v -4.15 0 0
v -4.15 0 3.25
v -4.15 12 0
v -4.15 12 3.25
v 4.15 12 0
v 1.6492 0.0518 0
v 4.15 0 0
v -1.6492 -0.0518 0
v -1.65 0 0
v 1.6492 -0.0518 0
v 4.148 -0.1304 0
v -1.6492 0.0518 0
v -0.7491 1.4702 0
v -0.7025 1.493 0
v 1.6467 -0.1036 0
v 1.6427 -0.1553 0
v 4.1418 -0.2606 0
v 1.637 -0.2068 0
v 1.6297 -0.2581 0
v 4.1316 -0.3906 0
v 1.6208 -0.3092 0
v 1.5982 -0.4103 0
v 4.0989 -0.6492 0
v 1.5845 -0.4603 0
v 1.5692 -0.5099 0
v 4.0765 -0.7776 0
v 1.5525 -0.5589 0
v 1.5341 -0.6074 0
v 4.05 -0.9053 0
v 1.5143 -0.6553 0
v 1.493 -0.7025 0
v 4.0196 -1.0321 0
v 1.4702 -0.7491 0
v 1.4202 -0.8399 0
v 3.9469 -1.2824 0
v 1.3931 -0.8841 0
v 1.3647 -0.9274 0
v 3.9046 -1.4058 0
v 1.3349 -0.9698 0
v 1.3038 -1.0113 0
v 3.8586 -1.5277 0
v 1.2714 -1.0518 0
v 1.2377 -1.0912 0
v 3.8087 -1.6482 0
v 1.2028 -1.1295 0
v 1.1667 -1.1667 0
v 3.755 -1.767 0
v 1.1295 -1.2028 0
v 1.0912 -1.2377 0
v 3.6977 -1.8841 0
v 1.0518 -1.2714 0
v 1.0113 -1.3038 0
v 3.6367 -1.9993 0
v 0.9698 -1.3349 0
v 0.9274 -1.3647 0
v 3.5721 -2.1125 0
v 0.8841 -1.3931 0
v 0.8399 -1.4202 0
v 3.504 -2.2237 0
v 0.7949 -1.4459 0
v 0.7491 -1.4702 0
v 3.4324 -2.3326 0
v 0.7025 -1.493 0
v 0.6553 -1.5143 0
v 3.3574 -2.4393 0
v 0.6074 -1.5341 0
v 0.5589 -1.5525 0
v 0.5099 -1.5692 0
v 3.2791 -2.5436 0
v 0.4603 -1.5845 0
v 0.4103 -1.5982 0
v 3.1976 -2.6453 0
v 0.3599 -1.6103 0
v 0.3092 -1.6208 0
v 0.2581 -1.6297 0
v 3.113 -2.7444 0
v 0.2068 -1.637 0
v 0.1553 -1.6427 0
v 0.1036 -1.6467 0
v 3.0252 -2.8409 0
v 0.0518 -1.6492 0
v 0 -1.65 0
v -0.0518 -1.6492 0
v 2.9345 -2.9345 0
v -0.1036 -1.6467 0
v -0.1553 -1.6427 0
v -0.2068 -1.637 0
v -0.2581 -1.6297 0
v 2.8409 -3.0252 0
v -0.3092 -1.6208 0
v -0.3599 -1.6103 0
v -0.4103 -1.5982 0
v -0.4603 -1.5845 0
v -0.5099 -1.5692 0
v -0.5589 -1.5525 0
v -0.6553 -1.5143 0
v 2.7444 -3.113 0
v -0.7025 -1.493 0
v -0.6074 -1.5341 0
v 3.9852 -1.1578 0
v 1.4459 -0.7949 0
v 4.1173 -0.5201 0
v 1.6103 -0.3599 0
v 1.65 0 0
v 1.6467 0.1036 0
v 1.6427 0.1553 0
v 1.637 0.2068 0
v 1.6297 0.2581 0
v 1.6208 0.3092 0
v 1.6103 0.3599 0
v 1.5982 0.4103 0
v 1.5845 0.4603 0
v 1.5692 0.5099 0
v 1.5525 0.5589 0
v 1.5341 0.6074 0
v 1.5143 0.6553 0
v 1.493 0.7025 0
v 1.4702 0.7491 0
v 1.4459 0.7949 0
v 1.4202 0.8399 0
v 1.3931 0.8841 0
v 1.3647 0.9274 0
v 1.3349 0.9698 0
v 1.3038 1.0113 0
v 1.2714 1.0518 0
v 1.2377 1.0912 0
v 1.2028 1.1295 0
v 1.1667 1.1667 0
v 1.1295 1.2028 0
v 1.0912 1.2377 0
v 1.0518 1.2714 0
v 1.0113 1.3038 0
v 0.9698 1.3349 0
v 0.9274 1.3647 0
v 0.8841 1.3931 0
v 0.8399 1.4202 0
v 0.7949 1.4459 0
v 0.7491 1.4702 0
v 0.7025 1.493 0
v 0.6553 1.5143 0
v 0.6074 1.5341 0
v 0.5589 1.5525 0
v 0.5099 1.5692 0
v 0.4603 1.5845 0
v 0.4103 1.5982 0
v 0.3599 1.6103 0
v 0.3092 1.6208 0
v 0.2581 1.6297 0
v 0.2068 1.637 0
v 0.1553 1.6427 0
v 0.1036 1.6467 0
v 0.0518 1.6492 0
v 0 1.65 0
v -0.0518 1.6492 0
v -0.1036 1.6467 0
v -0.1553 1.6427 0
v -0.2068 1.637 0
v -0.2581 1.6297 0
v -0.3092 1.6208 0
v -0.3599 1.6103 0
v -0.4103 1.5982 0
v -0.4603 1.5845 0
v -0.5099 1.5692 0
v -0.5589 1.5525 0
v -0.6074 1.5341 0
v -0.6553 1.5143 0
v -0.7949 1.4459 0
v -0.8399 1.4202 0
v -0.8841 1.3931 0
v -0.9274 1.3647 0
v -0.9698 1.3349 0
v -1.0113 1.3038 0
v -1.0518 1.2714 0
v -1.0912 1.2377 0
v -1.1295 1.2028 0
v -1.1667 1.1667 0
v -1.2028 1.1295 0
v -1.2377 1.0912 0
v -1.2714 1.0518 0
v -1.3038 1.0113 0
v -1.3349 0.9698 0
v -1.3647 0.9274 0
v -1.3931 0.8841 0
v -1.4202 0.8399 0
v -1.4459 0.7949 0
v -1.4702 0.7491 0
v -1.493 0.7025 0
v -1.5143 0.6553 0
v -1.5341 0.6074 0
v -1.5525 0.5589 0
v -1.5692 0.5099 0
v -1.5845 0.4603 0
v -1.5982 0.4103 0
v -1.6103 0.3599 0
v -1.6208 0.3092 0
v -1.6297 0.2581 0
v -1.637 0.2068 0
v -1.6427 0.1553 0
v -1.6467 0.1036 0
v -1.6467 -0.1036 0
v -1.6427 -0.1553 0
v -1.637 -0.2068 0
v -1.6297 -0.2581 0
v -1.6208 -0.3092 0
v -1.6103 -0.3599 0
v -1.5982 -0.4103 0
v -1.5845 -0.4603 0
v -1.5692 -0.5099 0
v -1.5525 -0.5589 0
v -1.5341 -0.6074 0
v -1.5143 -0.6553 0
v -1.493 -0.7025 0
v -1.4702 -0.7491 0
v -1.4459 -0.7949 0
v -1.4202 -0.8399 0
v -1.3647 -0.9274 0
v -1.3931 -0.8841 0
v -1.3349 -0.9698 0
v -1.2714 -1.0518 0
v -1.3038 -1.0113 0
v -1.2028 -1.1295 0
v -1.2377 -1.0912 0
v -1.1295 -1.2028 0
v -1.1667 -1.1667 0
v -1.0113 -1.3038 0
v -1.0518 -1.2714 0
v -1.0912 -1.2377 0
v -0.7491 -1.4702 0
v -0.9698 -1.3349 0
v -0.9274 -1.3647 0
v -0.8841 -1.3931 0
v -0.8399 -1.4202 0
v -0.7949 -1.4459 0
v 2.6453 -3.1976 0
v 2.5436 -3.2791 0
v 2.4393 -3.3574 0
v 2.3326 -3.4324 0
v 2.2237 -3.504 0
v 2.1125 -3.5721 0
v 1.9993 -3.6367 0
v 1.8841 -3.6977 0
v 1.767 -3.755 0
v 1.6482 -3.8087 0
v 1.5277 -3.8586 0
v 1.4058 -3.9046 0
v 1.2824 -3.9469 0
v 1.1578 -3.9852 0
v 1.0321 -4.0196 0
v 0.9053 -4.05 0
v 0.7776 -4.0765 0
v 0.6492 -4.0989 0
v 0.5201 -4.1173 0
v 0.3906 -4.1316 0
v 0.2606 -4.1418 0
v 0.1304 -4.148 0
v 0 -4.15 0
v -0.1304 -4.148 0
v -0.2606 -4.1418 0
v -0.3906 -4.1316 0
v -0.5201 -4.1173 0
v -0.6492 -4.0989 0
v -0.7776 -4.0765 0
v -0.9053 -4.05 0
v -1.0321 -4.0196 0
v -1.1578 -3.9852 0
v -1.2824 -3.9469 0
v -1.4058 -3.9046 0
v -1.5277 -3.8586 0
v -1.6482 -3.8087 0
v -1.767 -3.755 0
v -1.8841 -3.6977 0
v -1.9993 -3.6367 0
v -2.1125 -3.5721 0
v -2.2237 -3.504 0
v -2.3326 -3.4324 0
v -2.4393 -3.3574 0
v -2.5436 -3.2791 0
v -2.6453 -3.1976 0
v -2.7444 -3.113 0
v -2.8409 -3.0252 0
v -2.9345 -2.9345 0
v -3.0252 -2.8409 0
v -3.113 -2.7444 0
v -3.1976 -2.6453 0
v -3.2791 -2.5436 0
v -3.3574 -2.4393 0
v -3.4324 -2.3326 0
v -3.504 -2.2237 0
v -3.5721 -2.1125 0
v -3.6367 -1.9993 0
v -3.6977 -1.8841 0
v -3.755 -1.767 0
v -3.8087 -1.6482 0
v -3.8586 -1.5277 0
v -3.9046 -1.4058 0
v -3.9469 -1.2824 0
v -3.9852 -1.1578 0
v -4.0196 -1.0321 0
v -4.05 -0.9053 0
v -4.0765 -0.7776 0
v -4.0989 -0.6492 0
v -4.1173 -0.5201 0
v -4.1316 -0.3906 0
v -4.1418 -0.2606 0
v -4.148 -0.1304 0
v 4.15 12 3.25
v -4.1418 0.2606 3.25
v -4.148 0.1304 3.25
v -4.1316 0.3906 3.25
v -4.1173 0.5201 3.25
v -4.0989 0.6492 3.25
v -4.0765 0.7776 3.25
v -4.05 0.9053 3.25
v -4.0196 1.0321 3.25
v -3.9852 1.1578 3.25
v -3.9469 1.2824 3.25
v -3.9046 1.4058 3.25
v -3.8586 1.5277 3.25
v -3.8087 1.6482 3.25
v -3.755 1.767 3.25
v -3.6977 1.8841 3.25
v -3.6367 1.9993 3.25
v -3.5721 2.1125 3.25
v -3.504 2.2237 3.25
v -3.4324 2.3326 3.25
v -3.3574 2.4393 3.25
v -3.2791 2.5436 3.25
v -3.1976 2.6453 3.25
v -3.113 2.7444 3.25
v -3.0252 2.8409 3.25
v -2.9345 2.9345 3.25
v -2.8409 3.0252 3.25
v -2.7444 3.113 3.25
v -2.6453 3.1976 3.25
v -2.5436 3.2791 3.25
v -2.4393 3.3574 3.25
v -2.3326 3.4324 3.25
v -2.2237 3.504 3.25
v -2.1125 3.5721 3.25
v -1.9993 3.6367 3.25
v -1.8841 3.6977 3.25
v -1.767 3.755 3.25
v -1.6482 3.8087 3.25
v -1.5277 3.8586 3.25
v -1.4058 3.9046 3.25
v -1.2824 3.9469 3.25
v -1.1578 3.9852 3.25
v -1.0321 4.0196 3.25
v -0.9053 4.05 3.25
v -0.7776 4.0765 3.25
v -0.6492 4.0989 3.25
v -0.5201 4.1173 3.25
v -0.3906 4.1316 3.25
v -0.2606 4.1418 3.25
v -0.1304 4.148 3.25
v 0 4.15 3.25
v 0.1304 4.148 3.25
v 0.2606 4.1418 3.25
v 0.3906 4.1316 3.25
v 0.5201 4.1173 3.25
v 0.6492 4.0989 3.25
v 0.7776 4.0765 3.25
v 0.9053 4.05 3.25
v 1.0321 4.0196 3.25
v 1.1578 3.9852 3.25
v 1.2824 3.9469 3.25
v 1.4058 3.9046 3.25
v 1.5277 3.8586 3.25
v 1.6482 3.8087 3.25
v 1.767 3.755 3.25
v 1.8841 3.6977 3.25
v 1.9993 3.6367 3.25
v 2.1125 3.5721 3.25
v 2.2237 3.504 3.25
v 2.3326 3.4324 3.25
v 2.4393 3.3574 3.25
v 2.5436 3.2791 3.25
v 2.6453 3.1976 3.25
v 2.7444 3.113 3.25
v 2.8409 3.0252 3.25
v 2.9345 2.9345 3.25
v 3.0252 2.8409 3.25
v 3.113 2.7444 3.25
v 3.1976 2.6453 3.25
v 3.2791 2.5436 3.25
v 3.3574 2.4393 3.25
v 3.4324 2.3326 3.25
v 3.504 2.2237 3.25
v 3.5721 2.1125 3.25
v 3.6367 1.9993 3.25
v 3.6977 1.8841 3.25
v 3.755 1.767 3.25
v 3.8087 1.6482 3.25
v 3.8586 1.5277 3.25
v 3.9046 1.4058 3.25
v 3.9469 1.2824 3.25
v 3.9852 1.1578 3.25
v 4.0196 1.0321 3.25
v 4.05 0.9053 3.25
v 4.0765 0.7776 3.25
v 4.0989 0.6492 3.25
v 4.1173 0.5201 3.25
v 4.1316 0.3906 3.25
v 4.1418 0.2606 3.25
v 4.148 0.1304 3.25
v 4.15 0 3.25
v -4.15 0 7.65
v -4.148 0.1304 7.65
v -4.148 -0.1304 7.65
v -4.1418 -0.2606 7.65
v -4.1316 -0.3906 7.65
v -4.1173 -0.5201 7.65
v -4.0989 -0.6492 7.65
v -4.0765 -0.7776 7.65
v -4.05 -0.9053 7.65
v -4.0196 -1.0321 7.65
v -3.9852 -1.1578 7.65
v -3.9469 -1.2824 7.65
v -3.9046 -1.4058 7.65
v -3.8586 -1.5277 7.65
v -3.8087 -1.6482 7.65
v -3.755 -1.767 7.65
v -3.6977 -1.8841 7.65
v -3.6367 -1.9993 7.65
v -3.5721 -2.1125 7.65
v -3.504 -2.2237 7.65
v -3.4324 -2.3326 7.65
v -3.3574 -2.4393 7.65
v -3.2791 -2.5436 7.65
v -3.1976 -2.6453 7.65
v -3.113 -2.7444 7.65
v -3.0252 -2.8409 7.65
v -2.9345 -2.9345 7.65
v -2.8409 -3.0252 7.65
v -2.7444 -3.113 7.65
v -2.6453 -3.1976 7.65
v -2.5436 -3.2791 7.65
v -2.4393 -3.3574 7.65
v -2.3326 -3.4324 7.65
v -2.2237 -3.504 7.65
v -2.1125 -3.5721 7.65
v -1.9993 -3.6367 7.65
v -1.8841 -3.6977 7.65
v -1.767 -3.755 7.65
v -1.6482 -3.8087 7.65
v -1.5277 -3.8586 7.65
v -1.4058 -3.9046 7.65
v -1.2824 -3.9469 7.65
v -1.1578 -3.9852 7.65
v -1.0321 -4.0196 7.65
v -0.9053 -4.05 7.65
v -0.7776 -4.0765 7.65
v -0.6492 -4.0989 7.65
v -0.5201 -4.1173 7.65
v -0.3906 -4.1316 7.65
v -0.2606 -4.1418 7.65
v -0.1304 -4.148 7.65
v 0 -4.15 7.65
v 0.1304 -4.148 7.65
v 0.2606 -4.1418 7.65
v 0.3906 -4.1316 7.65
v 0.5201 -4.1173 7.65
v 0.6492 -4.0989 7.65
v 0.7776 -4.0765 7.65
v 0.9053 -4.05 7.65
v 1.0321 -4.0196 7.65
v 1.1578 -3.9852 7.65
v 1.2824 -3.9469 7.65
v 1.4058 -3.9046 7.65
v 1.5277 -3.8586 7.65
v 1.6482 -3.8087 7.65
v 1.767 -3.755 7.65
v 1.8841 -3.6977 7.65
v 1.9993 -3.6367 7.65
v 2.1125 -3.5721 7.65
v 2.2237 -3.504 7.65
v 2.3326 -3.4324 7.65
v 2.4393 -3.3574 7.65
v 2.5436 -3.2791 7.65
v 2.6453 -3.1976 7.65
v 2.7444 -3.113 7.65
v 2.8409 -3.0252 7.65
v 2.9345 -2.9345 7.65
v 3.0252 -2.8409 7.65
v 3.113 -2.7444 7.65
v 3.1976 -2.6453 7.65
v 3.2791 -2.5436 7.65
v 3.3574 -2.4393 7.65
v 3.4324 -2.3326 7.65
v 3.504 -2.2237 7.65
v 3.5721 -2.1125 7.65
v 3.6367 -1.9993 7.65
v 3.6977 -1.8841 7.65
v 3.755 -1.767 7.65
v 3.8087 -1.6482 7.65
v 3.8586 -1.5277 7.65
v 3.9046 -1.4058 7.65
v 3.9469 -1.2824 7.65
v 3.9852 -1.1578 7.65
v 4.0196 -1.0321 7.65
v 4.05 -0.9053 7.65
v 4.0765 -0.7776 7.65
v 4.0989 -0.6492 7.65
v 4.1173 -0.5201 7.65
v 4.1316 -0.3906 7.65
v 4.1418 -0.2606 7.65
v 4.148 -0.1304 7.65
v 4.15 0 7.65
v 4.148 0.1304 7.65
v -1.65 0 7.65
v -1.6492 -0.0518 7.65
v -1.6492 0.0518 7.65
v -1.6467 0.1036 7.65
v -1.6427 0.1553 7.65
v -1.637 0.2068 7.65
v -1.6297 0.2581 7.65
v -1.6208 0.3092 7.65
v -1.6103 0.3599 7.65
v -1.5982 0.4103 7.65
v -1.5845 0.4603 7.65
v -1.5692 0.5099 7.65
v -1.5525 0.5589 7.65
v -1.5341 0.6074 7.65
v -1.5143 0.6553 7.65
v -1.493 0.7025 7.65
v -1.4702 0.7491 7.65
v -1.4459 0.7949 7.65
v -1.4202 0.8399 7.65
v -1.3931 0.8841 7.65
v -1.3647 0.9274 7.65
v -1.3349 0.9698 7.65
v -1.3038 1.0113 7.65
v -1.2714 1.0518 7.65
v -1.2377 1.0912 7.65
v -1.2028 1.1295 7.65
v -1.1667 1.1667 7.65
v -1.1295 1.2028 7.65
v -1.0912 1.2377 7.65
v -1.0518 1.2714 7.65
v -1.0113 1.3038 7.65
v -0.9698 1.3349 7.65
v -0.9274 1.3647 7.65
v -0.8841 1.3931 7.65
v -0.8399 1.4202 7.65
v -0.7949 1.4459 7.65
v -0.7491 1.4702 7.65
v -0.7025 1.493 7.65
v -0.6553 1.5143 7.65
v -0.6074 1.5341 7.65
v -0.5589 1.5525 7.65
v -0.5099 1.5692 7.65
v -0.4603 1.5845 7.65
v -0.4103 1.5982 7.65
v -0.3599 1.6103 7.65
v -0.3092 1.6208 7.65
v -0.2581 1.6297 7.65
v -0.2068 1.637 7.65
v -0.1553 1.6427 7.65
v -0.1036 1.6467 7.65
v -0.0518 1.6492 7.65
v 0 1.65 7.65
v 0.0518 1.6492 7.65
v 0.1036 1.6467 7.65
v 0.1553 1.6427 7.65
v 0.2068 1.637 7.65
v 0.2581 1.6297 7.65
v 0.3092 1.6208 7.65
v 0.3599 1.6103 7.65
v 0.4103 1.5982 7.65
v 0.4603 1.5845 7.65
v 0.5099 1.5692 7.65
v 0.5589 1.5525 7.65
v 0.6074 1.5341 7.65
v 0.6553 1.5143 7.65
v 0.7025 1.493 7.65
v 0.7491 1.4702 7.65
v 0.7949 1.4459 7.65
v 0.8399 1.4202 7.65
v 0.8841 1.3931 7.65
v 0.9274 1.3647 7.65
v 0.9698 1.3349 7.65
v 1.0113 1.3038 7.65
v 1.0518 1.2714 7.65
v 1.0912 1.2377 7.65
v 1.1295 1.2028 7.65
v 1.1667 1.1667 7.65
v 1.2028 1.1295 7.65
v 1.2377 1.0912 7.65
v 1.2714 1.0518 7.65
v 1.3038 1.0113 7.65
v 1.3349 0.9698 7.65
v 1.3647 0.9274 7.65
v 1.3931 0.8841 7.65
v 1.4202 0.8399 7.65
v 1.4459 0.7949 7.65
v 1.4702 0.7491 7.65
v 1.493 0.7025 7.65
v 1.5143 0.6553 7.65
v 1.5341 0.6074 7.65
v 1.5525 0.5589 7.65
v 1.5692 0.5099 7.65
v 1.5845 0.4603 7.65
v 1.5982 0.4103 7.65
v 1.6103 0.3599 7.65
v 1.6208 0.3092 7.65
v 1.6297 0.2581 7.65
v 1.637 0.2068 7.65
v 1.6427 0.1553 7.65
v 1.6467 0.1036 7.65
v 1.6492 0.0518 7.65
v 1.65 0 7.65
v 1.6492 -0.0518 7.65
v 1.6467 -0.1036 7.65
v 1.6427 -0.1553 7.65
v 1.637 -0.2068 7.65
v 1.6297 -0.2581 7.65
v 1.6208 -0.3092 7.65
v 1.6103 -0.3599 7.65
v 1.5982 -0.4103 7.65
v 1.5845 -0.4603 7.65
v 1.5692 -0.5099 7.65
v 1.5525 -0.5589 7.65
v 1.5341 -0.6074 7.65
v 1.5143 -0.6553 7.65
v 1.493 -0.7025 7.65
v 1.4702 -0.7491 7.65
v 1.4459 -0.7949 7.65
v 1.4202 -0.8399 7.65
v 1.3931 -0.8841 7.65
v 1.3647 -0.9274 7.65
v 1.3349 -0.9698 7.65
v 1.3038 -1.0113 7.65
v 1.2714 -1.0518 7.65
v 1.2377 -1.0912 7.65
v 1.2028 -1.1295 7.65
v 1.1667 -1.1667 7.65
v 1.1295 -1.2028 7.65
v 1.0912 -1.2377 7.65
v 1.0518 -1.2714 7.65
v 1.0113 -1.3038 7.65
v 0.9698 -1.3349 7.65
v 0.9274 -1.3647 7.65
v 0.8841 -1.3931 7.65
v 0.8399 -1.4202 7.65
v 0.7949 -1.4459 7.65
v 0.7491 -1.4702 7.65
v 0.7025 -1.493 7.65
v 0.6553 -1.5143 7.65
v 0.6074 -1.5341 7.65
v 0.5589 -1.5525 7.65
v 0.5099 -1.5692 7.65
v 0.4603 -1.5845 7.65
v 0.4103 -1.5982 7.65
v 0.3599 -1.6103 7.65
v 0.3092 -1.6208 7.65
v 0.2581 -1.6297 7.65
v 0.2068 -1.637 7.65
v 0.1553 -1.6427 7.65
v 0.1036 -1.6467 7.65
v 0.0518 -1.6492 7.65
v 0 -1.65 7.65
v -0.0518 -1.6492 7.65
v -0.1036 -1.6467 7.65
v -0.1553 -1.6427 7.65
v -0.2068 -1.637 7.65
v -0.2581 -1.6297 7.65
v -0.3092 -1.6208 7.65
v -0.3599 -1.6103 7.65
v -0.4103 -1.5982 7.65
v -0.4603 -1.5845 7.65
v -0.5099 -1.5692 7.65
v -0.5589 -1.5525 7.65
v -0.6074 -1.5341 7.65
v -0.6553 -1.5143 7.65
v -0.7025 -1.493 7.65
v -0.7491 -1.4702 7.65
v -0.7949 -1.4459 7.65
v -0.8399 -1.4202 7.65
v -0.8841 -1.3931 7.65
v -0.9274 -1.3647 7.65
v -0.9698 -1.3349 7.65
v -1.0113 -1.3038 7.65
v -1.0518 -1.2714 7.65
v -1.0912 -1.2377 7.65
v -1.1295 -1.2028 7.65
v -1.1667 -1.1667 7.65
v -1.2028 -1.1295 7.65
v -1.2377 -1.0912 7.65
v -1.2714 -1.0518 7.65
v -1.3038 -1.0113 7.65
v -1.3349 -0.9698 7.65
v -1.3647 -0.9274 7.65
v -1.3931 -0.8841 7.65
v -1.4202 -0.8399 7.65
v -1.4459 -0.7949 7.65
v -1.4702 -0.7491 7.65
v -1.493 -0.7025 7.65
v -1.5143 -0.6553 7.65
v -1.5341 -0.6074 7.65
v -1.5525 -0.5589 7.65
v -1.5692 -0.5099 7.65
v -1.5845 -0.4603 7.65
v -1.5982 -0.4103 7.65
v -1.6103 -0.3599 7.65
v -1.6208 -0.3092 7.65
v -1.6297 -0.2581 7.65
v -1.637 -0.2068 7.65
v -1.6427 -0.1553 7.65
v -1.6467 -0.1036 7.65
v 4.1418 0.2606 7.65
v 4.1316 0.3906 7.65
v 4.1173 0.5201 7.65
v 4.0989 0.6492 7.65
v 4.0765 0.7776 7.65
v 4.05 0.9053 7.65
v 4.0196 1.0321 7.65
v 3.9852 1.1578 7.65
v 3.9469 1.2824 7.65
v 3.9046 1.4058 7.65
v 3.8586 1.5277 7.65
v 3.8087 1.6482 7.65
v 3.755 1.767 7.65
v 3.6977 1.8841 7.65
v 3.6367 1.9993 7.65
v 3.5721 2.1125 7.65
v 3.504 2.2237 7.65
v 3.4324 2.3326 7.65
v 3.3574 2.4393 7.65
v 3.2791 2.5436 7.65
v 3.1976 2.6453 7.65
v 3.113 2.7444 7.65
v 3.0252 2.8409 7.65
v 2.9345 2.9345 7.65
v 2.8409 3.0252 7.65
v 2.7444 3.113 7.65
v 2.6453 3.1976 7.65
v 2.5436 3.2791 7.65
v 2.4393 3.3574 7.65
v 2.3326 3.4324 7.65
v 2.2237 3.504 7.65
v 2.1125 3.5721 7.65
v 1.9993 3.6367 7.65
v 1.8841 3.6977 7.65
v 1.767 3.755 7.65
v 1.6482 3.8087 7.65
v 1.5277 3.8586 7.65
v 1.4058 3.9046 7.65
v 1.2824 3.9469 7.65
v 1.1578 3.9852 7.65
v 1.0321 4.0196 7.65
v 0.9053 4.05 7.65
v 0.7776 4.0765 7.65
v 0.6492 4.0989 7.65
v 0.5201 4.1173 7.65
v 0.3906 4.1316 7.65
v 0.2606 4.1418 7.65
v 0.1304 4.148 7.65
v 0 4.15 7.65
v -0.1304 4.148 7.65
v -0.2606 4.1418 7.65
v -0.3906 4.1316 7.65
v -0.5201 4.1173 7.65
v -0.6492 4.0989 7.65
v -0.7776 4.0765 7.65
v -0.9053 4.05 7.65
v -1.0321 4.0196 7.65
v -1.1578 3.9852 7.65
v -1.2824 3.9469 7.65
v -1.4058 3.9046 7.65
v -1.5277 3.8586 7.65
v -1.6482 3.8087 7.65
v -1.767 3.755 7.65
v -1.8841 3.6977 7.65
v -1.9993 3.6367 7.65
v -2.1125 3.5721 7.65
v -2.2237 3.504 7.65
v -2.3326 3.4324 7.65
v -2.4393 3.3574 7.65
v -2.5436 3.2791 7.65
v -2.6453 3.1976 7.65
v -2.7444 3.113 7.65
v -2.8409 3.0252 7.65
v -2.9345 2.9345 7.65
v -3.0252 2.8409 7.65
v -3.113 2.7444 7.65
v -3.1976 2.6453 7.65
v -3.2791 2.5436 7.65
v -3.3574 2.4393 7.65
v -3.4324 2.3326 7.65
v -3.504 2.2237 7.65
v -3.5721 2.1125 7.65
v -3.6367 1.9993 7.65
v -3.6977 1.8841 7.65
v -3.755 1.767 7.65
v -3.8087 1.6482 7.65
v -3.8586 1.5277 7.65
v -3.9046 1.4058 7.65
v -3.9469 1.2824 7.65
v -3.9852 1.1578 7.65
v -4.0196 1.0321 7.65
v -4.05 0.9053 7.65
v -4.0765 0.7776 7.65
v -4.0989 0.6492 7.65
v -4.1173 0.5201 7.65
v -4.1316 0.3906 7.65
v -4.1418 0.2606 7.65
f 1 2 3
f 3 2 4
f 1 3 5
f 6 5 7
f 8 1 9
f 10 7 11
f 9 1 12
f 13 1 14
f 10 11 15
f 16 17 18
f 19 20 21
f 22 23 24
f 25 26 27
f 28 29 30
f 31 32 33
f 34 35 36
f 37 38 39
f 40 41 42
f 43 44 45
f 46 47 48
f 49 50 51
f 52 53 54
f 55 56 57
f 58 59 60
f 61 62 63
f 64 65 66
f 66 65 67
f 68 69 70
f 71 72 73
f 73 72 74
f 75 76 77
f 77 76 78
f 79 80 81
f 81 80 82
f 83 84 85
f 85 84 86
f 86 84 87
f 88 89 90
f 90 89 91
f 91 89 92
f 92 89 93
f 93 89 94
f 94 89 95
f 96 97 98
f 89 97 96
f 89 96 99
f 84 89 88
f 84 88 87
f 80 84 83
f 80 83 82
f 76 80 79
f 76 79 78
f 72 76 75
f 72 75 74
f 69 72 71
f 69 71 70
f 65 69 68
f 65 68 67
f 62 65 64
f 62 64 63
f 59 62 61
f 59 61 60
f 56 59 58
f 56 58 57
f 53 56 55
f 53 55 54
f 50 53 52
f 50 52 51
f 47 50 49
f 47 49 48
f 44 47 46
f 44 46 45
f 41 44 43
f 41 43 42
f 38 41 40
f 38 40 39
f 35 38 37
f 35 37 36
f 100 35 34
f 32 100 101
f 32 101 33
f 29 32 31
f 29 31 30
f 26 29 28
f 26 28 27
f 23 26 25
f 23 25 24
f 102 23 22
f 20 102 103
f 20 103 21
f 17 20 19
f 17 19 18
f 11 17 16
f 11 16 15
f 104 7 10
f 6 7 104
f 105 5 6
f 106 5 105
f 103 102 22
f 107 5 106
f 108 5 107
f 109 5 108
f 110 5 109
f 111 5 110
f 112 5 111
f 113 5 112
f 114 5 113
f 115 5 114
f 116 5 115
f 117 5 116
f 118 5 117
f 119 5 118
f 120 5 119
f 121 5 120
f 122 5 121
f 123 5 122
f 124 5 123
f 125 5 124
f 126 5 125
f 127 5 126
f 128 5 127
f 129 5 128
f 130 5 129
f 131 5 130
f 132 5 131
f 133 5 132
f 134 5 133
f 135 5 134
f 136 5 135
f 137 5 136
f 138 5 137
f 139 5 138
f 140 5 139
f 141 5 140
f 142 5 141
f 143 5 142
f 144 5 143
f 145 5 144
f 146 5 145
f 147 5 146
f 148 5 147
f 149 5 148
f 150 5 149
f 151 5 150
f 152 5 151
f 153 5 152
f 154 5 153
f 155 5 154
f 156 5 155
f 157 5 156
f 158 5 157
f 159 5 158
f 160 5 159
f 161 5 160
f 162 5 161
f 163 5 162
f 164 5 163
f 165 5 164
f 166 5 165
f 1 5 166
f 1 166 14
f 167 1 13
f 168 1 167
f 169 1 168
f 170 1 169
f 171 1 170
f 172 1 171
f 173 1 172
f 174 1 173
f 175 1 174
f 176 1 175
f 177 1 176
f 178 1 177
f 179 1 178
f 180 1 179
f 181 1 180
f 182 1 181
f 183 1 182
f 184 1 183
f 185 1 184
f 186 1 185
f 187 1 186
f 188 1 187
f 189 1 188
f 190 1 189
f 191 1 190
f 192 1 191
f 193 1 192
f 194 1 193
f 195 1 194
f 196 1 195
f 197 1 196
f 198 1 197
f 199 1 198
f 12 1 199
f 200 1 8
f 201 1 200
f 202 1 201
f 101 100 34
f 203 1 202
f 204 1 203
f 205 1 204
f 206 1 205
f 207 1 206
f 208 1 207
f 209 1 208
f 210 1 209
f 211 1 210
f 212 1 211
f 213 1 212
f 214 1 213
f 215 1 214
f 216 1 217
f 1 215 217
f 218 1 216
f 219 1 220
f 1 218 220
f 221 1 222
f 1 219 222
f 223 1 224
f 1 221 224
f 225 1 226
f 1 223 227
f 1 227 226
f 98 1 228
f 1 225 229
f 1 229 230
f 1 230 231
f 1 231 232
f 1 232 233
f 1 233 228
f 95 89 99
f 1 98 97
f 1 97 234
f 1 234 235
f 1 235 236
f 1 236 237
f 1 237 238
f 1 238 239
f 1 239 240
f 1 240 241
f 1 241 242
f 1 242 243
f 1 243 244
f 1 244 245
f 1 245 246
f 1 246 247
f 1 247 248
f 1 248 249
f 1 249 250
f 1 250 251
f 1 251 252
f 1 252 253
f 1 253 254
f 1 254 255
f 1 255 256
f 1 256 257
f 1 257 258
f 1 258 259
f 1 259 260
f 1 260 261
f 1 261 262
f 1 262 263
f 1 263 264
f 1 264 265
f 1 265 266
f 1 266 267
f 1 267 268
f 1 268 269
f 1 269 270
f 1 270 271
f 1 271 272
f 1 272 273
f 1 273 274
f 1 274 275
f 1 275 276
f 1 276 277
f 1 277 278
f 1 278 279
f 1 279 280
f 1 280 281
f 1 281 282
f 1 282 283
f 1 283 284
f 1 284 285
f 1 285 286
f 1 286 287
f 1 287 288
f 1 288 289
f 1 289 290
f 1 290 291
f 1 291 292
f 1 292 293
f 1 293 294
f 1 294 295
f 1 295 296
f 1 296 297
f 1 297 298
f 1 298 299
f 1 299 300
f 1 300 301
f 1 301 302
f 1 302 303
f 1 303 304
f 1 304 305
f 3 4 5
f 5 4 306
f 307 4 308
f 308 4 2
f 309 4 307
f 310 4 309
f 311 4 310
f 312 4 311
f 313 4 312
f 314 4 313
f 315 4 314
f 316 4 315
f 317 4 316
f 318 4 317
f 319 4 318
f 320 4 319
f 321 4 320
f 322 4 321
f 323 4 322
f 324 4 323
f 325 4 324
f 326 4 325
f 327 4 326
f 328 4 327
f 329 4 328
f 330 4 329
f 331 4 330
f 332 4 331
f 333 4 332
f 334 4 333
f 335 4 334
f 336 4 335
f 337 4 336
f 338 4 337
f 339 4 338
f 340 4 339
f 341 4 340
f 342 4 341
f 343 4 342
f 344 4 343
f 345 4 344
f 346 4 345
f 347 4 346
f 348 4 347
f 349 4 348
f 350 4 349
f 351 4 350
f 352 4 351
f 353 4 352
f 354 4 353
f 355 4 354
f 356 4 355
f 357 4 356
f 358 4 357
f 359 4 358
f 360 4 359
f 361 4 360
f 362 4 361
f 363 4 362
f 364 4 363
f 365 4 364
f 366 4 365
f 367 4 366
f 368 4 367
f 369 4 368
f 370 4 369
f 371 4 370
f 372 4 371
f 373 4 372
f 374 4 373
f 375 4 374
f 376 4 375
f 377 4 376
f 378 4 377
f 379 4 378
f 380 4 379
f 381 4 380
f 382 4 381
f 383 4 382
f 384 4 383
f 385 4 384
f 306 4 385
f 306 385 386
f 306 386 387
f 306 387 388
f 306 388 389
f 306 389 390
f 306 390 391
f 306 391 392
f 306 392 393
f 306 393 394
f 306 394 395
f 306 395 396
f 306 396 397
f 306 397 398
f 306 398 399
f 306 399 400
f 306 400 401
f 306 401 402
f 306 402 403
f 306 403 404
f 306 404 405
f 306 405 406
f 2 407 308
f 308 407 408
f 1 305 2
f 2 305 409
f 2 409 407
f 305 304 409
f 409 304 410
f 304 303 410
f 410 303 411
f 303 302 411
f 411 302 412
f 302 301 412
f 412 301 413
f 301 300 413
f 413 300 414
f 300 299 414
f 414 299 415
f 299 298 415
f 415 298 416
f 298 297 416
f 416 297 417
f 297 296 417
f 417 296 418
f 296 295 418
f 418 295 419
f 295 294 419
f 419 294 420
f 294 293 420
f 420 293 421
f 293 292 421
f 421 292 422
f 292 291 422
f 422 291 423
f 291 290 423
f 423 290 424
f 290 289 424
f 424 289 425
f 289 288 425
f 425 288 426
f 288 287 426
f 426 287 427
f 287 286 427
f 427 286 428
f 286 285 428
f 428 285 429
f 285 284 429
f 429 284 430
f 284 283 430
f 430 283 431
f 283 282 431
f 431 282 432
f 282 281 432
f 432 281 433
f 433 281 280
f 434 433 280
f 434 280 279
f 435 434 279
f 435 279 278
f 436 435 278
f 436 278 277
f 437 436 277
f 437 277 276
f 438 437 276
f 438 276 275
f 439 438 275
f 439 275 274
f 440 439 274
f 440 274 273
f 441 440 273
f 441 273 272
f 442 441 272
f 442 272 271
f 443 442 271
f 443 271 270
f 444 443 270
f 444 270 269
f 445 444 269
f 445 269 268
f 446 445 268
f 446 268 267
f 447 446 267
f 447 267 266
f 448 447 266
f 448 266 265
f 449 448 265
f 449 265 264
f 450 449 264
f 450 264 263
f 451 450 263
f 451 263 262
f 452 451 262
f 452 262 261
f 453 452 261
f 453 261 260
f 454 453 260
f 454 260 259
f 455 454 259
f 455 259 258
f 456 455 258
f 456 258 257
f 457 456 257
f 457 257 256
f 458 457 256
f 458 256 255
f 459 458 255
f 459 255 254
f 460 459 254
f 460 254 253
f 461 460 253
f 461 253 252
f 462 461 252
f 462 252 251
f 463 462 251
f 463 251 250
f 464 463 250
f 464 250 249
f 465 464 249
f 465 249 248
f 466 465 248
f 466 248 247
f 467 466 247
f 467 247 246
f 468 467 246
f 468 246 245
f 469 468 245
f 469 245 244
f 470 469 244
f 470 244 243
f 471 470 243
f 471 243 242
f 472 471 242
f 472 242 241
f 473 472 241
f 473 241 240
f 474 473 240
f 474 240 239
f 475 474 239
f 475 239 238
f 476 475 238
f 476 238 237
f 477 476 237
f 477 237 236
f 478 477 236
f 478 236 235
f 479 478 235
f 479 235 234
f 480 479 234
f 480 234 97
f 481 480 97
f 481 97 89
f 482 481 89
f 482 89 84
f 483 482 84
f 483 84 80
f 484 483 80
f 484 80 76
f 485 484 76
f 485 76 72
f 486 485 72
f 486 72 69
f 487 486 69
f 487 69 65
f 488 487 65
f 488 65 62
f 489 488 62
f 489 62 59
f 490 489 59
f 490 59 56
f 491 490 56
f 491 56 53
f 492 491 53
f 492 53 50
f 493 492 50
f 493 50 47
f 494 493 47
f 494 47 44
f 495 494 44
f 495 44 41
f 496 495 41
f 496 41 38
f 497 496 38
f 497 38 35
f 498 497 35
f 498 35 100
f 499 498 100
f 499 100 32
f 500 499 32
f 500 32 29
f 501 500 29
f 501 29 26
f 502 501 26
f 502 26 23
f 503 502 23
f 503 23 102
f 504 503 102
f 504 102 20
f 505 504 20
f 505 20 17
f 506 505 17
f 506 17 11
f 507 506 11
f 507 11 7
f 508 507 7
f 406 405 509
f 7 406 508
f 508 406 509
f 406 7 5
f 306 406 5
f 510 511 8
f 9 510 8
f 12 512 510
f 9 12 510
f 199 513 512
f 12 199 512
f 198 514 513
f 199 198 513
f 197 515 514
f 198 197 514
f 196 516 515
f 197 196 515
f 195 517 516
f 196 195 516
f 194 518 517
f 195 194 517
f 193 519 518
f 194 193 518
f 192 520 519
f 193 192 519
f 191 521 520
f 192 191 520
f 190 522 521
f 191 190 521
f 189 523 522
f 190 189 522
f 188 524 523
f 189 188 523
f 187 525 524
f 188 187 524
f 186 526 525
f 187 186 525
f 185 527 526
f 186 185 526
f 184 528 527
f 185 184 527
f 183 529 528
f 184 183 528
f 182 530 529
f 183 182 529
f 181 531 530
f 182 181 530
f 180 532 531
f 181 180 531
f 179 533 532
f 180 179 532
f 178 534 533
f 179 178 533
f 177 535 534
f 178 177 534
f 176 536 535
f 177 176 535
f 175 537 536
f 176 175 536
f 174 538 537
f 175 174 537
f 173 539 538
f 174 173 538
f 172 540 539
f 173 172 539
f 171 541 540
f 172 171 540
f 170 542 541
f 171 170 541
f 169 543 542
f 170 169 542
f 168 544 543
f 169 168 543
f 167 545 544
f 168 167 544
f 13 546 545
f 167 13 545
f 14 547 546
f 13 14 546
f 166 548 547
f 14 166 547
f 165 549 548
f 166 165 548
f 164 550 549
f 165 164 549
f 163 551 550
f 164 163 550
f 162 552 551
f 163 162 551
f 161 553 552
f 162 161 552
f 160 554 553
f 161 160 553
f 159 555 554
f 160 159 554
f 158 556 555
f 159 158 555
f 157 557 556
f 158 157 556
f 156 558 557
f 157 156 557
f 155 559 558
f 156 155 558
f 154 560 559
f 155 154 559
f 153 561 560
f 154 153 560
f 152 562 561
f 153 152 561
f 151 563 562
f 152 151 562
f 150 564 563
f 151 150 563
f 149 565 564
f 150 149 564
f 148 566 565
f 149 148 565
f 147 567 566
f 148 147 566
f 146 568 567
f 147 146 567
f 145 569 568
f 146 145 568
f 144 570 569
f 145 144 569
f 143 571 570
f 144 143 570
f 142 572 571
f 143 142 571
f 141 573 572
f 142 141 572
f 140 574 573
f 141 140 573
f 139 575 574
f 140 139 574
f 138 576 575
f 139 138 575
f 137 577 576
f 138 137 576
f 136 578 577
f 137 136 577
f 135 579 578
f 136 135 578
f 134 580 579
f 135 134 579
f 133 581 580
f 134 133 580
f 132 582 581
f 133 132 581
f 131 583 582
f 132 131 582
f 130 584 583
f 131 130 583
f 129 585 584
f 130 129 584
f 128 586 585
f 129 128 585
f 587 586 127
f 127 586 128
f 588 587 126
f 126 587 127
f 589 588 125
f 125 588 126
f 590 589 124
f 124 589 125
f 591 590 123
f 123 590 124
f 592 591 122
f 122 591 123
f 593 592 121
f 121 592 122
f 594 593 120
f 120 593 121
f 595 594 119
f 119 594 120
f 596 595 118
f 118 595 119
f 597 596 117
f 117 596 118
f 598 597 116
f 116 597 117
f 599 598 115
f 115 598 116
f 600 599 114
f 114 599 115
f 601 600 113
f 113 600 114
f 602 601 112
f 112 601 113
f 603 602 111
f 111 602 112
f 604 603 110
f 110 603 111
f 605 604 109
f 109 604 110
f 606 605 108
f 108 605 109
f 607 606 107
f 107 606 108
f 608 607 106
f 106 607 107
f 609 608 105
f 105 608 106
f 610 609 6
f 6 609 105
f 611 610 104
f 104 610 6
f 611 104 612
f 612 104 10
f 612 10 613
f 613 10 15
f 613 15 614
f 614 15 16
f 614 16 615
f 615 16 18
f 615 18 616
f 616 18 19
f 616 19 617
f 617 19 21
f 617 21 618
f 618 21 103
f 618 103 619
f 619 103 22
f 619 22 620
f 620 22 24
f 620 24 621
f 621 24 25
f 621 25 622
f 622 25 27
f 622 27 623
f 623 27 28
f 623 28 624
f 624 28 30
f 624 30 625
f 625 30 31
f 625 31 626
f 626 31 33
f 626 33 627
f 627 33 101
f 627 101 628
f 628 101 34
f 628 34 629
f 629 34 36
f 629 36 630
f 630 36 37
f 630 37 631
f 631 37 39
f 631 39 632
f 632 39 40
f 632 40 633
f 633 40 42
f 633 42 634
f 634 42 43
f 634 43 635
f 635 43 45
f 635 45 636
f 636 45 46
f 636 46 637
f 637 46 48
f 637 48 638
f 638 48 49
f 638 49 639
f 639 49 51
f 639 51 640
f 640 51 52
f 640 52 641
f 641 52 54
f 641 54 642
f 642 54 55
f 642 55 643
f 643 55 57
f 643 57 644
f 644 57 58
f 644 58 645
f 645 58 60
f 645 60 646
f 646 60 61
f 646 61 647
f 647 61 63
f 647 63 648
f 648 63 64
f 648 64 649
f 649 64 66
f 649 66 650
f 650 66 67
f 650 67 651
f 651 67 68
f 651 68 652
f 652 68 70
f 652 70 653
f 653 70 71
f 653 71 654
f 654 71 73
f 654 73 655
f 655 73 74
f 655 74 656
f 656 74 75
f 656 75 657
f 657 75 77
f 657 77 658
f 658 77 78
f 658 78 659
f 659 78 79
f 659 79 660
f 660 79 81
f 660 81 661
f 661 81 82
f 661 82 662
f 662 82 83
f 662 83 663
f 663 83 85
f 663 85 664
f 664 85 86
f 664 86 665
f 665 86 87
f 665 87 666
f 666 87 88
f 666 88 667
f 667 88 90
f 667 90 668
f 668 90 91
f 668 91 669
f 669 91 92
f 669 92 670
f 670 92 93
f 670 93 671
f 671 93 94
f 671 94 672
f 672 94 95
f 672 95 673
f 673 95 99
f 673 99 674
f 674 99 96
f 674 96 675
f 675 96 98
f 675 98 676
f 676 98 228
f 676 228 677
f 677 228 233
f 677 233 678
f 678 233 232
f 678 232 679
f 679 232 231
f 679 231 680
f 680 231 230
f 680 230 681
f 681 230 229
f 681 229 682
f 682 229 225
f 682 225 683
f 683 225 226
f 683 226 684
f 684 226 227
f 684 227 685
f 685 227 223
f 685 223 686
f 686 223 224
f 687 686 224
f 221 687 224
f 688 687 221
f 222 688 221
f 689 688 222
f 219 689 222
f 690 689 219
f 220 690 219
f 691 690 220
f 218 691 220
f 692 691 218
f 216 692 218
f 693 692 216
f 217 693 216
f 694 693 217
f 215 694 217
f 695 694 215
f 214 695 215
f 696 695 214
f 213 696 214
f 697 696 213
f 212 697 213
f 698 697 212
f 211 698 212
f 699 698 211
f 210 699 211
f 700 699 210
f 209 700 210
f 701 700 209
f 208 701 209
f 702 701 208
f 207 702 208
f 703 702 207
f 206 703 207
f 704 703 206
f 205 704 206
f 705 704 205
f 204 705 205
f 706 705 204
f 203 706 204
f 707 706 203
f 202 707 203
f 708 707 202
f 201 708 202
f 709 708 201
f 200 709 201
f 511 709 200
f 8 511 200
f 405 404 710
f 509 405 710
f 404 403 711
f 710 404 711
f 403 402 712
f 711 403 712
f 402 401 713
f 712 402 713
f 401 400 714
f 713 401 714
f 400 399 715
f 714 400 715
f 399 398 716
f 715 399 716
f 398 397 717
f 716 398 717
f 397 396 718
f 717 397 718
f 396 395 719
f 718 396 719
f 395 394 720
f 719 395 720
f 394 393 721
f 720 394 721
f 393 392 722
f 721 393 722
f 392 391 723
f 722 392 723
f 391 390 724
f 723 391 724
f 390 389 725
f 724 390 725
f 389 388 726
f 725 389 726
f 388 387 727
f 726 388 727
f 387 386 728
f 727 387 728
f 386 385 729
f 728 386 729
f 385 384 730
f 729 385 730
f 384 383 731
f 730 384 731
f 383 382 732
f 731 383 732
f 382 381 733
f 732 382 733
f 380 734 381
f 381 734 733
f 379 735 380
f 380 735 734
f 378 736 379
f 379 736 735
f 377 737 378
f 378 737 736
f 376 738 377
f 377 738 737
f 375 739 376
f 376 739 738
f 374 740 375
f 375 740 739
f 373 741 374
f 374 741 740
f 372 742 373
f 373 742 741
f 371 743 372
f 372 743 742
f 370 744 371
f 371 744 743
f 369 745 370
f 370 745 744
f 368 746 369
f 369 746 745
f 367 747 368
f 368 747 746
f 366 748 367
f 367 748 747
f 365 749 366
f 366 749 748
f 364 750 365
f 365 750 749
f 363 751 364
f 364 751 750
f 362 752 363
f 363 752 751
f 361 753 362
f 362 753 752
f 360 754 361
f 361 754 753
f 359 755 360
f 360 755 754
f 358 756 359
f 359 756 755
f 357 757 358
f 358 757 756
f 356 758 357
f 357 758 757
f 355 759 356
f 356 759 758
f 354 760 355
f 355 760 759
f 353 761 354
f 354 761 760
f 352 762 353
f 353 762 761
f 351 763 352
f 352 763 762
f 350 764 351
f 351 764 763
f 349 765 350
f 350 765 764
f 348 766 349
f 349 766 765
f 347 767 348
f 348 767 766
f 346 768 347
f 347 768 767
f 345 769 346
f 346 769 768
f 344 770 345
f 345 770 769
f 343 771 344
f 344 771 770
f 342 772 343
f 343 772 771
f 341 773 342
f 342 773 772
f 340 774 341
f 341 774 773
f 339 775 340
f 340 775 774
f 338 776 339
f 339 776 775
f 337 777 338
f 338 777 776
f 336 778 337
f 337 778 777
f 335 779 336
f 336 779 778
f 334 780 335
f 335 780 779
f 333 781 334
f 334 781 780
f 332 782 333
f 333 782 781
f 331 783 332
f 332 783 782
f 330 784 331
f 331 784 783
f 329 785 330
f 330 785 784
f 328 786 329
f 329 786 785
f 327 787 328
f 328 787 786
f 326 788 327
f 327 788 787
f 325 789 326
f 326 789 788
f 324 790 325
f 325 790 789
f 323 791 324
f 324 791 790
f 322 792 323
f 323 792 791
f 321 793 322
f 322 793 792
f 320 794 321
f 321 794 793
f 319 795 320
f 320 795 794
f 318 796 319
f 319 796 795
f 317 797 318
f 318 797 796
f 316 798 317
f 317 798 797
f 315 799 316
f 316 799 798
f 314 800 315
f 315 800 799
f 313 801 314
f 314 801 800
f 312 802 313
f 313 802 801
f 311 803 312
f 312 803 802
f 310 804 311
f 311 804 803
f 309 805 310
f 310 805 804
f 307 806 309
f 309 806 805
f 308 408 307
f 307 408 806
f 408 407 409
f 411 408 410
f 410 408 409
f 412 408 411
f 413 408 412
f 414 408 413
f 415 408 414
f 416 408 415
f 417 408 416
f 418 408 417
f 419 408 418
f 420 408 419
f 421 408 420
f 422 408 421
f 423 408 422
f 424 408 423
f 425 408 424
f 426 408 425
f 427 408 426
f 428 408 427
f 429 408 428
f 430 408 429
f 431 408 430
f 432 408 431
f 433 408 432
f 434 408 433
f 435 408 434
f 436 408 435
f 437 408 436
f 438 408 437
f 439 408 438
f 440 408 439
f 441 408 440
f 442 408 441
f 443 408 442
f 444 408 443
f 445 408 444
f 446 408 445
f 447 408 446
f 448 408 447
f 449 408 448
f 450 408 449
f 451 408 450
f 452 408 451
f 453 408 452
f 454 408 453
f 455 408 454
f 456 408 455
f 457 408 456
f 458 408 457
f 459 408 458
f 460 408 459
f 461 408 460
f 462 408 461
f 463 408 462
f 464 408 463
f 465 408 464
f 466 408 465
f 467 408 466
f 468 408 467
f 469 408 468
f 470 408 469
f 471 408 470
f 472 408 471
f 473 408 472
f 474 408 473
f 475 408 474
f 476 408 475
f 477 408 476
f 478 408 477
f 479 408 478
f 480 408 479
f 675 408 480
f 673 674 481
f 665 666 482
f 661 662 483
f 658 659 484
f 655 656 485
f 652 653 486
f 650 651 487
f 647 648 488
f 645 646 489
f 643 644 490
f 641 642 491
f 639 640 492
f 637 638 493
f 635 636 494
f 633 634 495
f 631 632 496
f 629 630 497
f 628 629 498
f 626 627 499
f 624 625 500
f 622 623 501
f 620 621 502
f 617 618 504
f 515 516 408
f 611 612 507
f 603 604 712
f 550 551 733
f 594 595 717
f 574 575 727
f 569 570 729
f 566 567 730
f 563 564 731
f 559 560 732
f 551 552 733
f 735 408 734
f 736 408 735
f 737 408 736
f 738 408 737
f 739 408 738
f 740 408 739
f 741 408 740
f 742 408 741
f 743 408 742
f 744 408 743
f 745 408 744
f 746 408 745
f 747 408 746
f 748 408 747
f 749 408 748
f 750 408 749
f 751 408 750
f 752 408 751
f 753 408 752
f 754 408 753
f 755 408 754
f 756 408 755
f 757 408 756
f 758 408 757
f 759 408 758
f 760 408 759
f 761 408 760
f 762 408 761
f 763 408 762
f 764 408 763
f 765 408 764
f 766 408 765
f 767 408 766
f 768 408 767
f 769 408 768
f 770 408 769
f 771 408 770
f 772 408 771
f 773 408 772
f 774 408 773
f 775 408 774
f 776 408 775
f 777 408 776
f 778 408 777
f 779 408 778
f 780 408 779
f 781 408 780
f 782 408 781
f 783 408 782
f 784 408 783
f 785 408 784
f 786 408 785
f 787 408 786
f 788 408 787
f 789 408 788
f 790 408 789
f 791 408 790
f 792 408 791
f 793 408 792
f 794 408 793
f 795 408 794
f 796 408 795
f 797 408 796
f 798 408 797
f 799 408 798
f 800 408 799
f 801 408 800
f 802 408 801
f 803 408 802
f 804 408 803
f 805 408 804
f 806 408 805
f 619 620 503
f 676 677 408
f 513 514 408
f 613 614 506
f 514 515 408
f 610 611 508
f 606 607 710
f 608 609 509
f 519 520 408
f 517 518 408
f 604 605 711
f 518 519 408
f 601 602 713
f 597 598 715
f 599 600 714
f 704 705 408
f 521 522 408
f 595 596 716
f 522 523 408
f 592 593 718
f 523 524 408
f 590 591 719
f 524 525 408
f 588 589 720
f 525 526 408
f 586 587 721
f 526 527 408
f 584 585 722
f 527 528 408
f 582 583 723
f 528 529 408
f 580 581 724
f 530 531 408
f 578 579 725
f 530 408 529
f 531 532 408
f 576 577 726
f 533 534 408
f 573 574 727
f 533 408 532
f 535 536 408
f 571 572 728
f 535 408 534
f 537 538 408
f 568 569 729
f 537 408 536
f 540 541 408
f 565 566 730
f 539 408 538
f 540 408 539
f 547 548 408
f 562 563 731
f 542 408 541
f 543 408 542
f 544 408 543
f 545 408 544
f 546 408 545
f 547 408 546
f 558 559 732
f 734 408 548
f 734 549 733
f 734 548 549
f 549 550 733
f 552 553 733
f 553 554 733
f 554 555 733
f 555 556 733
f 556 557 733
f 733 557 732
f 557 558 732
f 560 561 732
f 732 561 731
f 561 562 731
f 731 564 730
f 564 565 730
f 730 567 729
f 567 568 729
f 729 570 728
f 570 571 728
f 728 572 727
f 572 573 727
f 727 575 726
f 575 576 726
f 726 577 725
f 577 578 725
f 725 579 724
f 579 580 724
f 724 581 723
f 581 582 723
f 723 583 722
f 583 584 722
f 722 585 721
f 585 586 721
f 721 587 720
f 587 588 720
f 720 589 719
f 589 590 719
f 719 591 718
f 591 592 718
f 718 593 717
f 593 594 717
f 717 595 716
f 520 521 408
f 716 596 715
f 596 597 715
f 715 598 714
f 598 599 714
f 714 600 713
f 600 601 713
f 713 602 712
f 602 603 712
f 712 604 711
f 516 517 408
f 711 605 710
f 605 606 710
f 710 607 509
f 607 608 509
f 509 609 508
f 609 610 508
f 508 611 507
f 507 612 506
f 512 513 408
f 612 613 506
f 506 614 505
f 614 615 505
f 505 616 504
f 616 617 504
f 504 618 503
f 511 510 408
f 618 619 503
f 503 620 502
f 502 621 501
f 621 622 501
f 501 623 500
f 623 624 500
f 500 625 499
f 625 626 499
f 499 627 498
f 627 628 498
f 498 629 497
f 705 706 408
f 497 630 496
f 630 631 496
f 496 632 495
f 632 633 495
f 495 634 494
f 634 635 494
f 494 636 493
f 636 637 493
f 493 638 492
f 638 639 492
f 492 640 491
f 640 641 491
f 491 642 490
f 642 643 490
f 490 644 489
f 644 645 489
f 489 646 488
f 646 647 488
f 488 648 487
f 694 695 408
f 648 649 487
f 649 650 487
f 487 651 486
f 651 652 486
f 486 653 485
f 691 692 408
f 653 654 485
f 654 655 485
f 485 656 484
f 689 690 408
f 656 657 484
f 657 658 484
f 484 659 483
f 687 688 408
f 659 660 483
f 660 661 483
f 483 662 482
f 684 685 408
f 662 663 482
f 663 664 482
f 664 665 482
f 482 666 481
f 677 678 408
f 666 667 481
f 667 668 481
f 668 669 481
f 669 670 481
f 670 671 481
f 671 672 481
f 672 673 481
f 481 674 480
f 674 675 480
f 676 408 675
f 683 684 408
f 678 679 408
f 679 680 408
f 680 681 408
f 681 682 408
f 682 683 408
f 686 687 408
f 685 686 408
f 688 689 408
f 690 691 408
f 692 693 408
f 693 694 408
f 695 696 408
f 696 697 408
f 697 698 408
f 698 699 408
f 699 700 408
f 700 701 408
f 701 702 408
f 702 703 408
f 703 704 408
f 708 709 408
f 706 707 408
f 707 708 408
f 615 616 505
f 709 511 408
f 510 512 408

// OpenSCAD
gQuality=200;
gMetricScrewSize=3;
gBedHeight=4.4;
gClipHeightAboveBed=3.25;
gScrewWallThickness=5;
gClipLength=12;

screwRadius=gMetricScrewSize/2*1.1;
outerScrewRadius=screwRadius+gScrewWallThickness/2;
totalHeight=gClipHeightAboveBed+gBedHeight;

difference()
{
	union()
	{
		translate([-outerScrewRadius,0,0])
		cube([outerScrewRadius*2,gClipLength,gClipHeightAboveBed]);
		cylinder(r=outerScrewRadius,h=totalHeight, $fn=gQuality);
	}
	cylinder(r=screwRadius,h=totalHeight, $fn=gQuality);
}
